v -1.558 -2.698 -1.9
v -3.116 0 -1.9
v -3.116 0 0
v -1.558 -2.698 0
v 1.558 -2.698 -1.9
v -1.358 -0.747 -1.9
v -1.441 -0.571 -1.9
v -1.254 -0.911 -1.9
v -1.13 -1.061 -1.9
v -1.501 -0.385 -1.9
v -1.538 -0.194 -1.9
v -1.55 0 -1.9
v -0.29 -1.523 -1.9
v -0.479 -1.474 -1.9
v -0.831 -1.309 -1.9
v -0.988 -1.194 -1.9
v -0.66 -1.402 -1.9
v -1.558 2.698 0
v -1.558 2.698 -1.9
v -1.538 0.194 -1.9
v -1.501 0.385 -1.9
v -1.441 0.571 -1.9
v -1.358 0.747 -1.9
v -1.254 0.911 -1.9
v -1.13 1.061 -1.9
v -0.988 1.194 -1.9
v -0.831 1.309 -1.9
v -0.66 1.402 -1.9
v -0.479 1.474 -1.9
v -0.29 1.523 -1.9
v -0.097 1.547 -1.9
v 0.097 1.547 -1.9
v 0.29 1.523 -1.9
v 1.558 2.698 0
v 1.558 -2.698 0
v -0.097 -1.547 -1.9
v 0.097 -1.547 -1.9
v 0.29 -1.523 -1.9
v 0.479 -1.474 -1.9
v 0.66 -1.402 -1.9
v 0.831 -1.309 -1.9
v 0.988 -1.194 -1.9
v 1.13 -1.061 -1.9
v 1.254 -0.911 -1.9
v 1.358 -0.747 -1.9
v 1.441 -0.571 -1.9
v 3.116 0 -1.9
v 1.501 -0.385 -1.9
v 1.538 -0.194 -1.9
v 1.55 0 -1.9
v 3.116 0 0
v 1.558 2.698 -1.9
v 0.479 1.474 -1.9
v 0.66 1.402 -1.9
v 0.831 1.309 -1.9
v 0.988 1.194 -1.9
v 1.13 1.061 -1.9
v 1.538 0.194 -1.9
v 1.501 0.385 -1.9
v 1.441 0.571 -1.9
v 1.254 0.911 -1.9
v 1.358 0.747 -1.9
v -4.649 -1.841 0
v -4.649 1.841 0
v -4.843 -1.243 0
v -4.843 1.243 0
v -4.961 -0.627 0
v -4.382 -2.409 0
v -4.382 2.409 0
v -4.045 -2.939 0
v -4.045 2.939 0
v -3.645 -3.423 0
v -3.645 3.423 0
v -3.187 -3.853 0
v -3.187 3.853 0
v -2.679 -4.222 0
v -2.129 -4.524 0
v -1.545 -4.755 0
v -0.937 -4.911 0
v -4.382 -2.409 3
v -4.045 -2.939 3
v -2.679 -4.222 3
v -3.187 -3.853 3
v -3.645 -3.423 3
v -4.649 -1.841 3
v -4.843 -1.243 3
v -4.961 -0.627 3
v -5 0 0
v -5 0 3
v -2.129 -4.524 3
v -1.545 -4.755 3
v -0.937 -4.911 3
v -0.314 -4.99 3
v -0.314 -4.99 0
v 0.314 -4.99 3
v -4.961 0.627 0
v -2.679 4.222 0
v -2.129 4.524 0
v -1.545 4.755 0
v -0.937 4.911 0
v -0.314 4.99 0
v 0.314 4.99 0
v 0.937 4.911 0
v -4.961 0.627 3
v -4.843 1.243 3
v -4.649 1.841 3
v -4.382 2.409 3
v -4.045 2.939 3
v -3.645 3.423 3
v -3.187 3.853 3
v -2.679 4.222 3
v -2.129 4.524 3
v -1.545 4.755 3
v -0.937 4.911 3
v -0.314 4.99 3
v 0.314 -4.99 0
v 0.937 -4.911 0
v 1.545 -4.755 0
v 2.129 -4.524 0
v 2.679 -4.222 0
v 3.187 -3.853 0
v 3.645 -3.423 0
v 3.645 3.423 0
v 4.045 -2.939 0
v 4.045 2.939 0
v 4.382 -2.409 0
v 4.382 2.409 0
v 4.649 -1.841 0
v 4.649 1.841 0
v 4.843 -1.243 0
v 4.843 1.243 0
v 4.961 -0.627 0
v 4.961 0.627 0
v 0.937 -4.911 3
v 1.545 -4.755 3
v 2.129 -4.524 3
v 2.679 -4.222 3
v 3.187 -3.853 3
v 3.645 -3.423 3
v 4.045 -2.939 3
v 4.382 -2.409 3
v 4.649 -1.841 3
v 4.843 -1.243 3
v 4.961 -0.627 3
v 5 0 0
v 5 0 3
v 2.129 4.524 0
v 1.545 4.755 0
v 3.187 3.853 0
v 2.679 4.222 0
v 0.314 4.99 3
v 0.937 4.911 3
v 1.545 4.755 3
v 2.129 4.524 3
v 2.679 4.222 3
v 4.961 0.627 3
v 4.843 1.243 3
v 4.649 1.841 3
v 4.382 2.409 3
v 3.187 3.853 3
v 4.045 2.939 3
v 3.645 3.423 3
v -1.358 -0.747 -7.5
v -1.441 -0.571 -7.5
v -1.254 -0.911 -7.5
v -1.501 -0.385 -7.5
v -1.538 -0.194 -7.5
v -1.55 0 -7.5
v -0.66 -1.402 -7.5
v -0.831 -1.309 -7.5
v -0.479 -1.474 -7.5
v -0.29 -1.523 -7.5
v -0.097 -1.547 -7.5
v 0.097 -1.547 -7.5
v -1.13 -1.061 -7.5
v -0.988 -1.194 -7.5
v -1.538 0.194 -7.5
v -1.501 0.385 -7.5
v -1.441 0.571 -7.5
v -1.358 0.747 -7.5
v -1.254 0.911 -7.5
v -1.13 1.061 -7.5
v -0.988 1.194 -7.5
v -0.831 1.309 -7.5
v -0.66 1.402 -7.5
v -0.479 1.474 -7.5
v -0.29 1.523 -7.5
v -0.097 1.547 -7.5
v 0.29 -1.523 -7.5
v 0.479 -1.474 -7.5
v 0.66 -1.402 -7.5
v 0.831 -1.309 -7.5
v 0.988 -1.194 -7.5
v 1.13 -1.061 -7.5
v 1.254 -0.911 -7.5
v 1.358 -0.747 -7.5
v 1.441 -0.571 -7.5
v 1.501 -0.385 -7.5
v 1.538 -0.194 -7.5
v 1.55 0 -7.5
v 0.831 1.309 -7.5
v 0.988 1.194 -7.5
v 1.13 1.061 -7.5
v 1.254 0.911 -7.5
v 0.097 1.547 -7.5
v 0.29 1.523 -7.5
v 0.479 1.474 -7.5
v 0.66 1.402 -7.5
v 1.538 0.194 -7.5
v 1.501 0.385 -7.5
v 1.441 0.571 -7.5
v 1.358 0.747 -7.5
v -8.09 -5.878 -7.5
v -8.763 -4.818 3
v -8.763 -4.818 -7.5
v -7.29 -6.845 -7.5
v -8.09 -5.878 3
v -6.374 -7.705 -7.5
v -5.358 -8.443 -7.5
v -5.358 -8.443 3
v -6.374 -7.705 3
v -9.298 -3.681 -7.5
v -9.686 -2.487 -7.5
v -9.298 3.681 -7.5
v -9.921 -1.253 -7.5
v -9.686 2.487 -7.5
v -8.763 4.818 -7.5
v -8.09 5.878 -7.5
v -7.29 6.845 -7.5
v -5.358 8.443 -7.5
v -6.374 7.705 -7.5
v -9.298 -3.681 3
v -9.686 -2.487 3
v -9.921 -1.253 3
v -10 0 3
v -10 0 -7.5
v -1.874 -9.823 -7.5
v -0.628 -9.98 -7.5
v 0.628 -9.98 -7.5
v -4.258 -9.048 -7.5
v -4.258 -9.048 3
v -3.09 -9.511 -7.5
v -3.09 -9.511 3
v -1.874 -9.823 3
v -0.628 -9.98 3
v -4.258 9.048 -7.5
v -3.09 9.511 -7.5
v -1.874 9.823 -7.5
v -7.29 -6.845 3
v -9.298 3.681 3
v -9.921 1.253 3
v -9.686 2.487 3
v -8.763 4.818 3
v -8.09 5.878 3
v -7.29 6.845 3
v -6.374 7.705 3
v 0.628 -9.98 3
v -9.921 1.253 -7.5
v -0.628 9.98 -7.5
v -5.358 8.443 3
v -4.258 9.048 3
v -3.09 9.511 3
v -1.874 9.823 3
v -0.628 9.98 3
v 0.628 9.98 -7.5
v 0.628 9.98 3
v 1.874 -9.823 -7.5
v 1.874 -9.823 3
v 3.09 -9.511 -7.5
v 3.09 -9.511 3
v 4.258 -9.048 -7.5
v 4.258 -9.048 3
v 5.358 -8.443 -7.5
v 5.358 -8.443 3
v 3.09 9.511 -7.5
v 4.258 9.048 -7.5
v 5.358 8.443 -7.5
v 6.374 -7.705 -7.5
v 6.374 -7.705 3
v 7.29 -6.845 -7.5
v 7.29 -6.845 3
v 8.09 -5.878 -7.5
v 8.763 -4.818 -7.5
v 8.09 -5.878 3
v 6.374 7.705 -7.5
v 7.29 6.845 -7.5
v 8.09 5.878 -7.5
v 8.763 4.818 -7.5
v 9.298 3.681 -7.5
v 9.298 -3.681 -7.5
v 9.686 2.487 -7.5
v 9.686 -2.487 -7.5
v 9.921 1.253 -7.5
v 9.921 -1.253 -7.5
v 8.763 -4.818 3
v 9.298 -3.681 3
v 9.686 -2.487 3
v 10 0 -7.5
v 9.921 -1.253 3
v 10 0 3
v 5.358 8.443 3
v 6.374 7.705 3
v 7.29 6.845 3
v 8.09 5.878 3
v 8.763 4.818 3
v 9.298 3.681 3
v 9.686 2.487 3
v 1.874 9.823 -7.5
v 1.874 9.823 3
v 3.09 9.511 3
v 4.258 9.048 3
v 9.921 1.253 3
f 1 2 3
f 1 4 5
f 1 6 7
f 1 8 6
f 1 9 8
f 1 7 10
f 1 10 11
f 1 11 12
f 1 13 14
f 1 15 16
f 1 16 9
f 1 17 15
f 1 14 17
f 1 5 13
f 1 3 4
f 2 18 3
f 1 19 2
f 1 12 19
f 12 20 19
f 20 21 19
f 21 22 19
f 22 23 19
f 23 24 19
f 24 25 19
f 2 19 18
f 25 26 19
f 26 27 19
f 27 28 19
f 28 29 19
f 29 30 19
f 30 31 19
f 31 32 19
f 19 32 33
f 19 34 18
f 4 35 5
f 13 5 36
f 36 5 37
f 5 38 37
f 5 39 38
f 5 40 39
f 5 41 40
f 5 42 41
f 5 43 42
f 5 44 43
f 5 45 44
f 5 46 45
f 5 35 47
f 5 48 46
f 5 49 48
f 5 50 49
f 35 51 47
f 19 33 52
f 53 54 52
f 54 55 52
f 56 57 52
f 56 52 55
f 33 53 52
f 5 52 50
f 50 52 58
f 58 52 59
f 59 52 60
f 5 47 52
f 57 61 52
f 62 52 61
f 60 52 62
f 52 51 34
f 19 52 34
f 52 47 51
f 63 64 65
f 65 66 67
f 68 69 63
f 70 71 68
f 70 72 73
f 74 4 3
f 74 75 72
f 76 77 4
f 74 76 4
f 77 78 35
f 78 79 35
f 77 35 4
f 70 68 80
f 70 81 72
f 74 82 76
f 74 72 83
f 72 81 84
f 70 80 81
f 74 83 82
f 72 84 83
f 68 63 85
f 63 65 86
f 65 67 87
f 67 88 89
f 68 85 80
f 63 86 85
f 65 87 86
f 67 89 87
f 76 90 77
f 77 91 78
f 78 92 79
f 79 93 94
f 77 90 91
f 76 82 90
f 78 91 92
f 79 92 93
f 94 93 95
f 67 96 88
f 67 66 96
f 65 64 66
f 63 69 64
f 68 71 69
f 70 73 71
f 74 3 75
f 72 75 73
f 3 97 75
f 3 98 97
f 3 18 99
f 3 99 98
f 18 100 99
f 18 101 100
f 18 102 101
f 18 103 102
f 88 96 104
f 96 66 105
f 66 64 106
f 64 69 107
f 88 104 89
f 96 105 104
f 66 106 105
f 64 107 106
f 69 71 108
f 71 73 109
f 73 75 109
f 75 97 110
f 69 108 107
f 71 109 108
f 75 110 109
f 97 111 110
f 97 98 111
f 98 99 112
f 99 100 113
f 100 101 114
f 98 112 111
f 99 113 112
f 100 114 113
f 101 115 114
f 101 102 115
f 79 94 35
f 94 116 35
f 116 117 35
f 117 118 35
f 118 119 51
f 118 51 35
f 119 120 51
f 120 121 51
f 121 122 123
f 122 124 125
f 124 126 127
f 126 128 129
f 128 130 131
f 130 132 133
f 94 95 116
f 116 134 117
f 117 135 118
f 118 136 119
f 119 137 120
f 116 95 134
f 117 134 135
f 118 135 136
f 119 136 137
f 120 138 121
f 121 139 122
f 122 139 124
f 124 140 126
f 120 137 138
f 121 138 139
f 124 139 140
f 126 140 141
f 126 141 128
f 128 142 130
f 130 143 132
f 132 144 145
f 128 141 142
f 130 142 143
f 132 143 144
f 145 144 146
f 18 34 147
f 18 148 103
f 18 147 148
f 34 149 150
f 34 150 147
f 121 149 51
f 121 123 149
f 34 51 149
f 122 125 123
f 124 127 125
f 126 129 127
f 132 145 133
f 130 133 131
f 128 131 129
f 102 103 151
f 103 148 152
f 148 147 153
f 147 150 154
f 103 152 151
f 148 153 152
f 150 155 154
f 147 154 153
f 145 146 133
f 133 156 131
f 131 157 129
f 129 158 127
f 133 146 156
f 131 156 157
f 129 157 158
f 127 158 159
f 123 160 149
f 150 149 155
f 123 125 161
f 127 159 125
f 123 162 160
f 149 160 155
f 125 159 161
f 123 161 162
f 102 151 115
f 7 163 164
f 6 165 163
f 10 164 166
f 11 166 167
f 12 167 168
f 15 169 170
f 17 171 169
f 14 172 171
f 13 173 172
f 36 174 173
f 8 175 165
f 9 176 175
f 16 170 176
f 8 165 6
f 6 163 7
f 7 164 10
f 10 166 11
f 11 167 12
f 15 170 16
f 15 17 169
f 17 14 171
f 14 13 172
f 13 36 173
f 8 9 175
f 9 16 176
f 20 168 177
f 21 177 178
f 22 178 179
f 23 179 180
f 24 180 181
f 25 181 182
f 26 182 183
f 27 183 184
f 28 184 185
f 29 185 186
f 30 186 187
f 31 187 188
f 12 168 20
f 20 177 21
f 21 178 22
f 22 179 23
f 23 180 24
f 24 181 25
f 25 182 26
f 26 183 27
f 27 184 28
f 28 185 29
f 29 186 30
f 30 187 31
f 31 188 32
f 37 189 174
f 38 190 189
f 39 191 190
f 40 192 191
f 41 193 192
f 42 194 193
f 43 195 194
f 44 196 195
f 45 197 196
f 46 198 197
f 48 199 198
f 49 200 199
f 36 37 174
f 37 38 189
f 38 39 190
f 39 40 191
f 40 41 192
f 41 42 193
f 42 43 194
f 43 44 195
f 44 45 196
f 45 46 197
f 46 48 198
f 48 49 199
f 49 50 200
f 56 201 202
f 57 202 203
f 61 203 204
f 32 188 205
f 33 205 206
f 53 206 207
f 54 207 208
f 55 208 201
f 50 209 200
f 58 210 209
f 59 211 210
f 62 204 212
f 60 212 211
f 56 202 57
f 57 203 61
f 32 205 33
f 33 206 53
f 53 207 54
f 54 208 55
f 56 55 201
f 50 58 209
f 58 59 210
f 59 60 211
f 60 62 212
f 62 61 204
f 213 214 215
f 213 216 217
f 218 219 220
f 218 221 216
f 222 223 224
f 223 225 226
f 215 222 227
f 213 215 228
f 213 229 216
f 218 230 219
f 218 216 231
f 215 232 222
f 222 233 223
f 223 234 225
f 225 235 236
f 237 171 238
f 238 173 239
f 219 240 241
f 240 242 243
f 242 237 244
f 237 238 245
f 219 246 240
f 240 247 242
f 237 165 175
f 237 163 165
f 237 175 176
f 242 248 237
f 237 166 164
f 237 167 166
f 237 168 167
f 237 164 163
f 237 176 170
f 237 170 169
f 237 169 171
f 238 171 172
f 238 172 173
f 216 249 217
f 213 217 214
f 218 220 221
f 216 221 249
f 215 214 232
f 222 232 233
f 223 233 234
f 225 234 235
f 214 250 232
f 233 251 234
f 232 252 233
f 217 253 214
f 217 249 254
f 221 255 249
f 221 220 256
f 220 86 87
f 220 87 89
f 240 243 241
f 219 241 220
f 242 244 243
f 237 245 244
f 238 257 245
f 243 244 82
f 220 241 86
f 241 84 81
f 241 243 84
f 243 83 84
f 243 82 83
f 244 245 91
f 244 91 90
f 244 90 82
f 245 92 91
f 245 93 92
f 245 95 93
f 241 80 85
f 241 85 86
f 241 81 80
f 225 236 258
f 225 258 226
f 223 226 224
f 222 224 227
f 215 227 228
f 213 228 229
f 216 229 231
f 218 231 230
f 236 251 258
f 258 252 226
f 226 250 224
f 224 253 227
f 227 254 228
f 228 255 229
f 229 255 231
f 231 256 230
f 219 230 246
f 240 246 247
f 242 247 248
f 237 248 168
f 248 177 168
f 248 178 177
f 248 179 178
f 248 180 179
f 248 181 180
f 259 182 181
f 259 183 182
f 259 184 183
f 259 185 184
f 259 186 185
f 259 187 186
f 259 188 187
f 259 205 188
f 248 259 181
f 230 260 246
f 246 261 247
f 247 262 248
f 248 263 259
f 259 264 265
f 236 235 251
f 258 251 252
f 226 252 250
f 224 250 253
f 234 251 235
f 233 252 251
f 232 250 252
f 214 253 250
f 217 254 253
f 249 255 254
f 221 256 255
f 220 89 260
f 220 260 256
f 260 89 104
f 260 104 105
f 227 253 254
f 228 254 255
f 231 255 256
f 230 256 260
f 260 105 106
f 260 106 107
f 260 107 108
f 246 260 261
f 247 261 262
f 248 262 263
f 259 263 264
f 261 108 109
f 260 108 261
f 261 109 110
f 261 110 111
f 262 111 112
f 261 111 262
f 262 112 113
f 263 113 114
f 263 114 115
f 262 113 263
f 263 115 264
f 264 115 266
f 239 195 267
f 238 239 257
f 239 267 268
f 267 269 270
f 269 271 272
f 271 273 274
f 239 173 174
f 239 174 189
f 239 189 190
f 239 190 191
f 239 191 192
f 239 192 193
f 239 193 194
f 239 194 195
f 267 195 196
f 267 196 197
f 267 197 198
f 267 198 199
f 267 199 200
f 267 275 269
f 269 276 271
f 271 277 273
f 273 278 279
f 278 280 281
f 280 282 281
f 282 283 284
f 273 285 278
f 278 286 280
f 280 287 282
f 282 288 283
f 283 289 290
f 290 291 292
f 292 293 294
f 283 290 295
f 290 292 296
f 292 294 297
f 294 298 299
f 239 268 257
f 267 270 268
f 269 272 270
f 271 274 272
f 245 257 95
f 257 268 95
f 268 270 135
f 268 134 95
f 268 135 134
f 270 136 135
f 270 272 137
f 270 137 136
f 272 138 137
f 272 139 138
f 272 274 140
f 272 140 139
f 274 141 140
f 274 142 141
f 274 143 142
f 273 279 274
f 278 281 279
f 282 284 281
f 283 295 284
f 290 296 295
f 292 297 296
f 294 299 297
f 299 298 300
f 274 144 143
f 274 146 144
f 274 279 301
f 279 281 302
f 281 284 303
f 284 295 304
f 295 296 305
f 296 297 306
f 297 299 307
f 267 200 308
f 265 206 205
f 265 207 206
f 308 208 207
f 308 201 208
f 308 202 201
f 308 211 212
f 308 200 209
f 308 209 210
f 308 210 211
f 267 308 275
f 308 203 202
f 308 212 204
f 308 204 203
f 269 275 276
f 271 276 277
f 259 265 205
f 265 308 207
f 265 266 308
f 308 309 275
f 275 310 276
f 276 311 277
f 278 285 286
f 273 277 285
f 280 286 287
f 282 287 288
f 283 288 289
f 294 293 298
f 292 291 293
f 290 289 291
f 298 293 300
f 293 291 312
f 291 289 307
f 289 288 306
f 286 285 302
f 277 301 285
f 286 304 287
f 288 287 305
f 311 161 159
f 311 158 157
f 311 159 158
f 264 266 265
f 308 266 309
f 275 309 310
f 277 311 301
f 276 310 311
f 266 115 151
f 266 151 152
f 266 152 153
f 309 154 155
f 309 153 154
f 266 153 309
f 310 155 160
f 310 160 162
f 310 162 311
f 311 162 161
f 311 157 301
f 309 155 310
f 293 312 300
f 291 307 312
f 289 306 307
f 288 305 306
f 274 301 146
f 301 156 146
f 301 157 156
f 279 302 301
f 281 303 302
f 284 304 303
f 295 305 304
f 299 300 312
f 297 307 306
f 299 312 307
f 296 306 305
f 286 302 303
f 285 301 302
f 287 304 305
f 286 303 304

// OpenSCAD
$fn = 50;

difference() {
	union() {
		translate(v = [0, 0, -7.5]) {
			cylinder(h = 10.5, r = 10.0);
		}
	}
	union() {
		translate(v = [0, 0, 0]) {
			rotate(a = [0, 0, 0]) {
				difference() {
					union() {
						translate(v = [0, 0, -1.9]) {
							linear_extrude(height = 1.9) {
								polygon(points = [[3.1158, 0.0], [1.5579000000000005, 2.698361953111554], [-1.5578999999999994, 2.6983619531115544], [-3.1158, 3.815754496783323e-16], [-1.5579000000000014, -2.6983619531115535], [1.557899999999998, -2.6983619531115552]]);
							}
						}
					}
					union();
				}
			}
		}
		#cylinder(h = 3, r = 5.0);
		#translate(v = [0, 0, -100.0]) {
			cylinder(h = 200, r = 1.55);
		}
	}
}
